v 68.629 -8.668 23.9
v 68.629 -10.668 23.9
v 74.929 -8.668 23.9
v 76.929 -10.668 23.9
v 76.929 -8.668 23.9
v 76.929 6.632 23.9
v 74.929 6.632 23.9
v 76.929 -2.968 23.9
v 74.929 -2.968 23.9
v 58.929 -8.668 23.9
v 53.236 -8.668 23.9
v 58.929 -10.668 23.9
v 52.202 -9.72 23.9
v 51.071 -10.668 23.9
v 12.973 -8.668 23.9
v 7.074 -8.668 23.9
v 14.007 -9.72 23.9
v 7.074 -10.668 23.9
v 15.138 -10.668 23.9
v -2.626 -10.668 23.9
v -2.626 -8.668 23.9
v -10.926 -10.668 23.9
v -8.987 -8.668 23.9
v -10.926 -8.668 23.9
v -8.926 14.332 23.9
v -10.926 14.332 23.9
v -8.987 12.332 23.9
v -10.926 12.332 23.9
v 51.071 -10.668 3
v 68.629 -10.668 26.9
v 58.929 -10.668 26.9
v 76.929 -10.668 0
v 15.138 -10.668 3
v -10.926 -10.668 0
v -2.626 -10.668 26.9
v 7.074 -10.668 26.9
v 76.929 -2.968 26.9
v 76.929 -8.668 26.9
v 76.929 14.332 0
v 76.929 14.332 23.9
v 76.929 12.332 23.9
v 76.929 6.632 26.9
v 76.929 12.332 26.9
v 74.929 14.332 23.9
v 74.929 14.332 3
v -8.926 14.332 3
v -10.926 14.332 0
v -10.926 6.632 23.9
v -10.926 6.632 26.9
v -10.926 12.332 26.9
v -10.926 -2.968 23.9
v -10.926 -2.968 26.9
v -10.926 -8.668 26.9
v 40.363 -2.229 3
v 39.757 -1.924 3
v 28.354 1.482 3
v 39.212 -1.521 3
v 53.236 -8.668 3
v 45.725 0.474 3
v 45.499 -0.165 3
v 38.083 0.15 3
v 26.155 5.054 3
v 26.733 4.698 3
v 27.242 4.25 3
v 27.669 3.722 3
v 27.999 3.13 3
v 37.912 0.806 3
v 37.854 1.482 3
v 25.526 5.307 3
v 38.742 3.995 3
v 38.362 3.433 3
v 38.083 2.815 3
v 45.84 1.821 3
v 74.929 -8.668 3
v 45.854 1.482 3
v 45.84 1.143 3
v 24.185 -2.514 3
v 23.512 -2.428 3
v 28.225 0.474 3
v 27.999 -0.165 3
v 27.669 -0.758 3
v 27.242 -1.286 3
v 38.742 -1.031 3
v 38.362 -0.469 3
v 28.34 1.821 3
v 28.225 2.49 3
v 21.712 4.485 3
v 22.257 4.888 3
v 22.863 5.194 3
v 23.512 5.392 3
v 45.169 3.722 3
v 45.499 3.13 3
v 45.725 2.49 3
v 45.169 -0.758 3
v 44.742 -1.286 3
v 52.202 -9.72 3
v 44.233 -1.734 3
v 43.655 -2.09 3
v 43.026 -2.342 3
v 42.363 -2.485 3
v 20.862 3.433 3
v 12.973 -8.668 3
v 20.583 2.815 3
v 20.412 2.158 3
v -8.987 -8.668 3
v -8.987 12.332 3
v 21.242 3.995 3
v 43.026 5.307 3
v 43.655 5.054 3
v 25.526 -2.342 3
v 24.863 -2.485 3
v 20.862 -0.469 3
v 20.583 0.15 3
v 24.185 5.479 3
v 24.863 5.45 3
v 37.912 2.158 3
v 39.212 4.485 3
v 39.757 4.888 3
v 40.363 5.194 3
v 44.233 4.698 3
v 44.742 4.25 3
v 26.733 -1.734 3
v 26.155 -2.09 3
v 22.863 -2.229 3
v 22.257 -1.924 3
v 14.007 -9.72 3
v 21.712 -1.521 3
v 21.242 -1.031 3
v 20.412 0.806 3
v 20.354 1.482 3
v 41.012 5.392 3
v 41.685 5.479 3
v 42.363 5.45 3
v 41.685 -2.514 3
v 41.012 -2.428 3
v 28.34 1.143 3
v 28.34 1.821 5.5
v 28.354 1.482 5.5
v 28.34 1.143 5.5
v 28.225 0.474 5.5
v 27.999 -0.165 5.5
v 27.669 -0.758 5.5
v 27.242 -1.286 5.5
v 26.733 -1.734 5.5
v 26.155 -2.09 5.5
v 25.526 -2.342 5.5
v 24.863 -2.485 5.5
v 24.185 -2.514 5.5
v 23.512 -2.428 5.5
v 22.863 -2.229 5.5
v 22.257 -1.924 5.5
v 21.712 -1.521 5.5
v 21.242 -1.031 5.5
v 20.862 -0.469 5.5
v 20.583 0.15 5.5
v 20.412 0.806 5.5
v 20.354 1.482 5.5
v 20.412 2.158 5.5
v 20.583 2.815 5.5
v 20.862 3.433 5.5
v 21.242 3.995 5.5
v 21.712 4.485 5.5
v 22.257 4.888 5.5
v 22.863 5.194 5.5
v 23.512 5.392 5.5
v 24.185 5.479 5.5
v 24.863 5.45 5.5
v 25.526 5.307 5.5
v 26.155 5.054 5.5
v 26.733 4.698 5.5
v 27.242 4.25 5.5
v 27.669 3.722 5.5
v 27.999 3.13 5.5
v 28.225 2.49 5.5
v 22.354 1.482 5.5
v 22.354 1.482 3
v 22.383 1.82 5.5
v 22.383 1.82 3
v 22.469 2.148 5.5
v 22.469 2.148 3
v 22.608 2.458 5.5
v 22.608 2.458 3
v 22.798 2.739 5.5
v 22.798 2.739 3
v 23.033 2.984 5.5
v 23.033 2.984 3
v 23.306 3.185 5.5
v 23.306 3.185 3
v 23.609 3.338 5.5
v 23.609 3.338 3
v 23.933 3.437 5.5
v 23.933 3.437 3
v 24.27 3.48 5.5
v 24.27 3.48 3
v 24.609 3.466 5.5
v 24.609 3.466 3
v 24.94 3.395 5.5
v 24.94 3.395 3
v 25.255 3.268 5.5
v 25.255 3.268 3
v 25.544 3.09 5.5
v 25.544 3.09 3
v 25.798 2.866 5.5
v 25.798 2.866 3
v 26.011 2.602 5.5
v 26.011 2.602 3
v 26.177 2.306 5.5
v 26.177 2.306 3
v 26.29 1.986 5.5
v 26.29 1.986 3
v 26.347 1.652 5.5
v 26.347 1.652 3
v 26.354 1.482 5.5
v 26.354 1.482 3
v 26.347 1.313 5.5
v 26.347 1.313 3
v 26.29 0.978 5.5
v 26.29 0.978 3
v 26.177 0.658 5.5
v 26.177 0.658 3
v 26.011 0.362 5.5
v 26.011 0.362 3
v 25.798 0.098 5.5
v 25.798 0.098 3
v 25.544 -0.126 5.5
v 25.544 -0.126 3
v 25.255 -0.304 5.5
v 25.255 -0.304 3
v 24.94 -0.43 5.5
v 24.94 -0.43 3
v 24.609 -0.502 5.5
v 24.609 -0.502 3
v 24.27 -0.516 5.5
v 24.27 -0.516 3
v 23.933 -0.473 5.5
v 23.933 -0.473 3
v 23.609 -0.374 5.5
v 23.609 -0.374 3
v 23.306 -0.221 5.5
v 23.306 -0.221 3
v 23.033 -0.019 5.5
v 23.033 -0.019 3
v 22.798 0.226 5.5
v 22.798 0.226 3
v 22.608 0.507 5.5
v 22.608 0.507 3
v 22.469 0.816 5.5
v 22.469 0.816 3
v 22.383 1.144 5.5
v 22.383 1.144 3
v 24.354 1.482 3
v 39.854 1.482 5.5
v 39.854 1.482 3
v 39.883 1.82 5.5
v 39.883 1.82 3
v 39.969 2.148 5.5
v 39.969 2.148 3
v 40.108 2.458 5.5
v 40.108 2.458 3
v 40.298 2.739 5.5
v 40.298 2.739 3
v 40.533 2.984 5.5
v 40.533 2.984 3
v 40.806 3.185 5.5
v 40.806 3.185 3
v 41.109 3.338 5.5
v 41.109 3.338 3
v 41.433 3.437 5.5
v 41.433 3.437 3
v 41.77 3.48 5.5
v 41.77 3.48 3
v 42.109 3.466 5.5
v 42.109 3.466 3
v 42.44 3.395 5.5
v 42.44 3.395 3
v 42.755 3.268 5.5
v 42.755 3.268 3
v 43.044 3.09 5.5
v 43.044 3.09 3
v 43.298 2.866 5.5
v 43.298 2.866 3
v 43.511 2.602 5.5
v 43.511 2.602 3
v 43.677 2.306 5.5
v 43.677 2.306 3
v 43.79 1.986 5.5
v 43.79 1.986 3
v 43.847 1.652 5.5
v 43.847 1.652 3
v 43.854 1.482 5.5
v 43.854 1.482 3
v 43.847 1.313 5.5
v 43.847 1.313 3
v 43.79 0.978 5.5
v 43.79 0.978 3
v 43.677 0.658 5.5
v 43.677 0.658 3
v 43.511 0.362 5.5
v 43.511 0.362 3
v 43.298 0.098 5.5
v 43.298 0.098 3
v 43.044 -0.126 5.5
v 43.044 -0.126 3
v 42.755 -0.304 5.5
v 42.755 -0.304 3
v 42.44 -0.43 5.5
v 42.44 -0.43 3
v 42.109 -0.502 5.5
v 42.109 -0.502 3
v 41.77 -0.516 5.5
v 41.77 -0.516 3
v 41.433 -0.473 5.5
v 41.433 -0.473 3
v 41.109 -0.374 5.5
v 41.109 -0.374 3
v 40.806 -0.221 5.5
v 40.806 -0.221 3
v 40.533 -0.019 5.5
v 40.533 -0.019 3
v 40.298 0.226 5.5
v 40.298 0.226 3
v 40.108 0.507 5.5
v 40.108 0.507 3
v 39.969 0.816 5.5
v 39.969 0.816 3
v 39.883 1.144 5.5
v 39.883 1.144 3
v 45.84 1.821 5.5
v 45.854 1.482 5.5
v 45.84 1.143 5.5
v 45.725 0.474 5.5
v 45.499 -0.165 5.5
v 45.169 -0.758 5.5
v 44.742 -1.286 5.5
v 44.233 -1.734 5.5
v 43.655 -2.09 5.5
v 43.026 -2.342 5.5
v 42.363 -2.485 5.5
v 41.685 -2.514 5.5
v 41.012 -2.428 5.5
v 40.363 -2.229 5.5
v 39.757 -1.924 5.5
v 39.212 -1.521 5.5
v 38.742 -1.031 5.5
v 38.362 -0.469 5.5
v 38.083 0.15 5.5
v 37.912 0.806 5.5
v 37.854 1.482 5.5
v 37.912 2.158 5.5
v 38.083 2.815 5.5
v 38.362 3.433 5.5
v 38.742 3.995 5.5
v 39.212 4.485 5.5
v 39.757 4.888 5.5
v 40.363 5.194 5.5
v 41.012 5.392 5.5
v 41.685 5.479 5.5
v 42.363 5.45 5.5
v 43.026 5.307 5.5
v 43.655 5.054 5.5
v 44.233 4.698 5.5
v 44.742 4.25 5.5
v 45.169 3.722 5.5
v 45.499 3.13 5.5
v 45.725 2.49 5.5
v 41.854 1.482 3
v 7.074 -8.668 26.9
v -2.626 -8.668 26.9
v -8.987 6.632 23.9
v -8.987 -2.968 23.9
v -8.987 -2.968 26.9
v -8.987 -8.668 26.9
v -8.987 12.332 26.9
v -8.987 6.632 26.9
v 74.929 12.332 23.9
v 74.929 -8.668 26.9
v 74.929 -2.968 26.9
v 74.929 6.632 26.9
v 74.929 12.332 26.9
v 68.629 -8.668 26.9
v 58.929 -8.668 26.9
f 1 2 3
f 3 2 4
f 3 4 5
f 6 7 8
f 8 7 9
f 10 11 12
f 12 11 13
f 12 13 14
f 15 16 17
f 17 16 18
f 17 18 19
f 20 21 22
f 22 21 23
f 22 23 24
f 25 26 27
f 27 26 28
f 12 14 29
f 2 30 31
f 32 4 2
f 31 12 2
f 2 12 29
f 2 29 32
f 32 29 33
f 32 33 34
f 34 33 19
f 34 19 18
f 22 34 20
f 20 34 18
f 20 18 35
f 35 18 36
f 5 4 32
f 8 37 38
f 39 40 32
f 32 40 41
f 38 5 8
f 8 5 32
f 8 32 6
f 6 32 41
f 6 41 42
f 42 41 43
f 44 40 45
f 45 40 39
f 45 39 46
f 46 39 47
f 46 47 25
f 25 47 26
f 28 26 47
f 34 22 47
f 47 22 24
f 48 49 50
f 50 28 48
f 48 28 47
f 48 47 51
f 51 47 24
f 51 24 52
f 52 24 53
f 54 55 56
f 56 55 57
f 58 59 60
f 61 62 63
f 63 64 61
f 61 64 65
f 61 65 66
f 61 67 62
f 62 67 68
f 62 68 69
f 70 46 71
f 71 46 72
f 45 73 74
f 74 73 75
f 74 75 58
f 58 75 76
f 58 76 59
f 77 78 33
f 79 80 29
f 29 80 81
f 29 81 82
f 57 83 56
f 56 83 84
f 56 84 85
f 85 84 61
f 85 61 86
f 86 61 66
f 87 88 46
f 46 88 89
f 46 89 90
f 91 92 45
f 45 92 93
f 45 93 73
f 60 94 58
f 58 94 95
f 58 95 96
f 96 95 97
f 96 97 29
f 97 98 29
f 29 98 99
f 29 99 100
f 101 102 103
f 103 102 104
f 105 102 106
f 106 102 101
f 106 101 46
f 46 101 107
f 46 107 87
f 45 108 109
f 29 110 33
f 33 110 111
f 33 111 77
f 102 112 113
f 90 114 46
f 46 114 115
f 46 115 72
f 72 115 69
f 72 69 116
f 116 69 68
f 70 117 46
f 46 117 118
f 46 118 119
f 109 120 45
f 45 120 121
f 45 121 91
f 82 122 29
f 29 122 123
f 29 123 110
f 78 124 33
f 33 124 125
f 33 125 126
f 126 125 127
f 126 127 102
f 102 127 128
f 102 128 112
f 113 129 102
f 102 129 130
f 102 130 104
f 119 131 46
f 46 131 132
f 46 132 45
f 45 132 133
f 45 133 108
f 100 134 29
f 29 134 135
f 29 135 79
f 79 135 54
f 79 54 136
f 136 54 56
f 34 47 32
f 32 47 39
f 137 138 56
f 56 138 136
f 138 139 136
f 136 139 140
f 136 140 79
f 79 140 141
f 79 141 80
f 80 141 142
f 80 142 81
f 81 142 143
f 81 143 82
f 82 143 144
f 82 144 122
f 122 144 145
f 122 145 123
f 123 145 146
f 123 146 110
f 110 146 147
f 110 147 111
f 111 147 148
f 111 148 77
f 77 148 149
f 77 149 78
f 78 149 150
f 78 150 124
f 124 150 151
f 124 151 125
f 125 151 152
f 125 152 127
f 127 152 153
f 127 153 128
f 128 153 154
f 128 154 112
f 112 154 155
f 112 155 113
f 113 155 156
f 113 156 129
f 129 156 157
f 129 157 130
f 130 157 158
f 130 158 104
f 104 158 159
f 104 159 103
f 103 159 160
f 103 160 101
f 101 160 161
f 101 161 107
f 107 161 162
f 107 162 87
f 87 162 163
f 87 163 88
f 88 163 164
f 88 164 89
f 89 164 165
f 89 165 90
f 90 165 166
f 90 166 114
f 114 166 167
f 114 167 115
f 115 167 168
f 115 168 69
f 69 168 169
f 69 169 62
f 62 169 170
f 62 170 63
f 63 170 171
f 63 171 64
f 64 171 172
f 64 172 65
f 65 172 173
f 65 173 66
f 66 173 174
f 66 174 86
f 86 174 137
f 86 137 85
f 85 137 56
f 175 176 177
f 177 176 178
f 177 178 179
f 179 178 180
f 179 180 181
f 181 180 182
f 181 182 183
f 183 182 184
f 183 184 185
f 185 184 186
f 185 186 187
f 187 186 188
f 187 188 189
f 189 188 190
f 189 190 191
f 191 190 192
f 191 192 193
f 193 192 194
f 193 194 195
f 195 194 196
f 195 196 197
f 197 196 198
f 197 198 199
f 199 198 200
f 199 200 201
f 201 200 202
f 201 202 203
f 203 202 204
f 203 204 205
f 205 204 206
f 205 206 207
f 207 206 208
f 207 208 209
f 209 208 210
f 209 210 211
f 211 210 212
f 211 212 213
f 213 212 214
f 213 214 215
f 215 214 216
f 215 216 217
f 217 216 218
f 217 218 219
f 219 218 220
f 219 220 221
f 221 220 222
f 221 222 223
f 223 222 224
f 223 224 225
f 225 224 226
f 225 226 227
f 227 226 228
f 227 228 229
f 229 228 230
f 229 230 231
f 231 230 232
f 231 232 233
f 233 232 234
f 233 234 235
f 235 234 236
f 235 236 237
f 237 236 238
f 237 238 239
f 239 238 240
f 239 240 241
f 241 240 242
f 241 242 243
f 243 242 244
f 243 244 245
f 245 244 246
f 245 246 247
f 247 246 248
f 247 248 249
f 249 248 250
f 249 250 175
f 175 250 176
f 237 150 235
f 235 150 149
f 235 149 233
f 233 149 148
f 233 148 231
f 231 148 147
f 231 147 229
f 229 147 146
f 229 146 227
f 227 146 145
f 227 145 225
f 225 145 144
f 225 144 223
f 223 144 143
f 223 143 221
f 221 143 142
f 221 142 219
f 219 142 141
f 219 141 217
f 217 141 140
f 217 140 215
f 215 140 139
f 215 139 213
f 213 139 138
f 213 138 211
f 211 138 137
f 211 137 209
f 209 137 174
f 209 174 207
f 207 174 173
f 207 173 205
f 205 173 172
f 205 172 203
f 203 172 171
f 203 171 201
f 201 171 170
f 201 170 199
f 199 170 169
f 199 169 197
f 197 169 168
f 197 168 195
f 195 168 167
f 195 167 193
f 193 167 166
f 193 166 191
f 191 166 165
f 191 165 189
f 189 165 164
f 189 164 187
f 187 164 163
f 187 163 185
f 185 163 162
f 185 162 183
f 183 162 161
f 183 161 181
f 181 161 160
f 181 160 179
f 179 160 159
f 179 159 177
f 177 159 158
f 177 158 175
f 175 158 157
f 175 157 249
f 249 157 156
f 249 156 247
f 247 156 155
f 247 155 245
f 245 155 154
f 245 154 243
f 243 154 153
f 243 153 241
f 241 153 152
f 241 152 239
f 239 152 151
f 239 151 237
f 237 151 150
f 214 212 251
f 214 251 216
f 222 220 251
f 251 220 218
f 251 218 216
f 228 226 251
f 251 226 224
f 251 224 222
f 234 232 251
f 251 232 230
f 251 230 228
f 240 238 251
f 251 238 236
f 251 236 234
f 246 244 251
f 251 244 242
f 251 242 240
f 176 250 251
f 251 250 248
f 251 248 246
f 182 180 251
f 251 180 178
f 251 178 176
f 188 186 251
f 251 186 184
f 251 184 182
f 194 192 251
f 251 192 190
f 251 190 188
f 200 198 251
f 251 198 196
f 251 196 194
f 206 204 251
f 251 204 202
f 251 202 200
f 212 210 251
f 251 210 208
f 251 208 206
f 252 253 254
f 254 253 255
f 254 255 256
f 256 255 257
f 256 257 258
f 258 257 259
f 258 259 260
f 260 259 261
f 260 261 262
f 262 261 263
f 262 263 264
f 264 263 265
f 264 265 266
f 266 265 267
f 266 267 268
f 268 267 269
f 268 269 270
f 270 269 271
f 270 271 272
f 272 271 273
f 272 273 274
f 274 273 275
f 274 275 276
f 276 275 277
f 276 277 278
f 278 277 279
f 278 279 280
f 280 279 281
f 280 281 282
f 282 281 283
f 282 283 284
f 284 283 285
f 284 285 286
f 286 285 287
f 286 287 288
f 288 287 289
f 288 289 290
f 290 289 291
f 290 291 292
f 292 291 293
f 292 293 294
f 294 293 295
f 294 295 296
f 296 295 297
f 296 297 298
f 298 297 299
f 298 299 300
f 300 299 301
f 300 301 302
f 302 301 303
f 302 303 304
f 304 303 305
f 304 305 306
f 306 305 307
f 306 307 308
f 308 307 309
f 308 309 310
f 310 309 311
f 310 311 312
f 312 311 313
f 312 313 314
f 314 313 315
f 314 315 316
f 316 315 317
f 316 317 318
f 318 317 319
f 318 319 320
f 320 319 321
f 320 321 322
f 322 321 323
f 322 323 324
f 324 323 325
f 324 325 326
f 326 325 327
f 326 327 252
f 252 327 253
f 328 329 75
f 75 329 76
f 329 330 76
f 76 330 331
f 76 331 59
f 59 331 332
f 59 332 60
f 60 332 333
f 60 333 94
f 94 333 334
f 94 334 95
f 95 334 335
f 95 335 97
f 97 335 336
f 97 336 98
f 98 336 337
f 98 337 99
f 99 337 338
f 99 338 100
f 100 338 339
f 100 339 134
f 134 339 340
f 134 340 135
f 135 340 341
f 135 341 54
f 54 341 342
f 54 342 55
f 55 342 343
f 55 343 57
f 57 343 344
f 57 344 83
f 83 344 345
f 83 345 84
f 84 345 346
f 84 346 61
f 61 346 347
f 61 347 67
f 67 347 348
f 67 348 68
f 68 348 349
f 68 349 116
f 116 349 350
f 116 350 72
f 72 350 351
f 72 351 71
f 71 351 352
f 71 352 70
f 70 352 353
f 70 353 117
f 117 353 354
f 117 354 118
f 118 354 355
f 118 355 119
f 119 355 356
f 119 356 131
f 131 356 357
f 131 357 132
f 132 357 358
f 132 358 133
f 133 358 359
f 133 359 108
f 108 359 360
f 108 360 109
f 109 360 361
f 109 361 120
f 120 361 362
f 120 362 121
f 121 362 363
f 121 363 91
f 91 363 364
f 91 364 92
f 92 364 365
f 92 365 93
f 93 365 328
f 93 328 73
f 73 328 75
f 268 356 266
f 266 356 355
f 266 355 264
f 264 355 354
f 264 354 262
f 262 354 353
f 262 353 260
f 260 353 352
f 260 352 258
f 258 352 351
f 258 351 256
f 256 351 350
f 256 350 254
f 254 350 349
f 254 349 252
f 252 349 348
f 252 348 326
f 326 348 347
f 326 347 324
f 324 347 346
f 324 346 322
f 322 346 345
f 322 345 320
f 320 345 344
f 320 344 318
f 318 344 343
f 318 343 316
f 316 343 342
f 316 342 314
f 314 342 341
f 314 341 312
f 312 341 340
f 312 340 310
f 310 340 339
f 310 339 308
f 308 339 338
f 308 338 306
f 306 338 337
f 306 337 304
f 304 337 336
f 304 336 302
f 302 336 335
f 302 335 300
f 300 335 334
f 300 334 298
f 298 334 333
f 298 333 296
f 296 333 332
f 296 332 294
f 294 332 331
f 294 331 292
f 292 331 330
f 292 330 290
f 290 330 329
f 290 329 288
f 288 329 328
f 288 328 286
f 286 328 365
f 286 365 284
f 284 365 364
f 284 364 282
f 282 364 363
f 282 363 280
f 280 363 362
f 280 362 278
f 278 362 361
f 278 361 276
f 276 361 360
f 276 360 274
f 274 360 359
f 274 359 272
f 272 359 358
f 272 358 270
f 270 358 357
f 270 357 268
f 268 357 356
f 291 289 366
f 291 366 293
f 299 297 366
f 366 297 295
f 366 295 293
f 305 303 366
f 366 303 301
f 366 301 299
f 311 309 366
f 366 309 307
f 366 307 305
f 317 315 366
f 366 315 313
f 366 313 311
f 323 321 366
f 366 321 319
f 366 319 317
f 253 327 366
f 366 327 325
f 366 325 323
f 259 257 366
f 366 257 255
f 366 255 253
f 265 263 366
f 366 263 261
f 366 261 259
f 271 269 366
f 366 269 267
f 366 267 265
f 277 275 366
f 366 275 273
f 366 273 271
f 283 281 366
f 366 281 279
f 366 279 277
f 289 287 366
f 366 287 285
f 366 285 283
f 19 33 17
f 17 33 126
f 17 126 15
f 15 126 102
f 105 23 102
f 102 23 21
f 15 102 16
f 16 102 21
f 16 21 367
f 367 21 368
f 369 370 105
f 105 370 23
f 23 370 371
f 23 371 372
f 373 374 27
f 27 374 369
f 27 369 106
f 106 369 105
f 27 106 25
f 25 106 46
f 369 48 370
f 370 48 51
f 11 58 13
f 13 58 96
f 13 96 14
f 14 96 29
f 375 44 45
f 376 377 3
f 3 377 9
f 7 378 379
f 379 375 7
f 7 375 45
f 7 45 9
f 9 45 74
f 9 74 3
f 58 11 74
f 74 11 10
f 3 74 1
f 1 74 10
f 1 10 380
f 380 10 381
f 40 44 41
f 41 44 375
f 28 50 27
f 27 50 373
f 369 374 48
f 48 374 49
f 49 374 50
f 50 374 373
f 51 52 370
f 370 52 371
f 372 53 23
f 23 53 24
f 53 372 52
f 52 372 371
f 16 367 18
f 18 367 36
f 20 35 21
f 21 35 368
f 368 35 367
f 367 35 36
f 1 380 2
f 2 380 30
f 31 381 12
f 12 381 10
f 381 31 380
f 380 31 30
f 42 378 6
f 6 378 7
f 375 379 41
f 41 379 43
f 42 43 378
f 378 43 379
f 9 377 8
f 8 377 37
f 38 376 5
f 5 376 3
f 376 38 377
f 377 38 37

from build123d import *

# Parameters (mm, degrees)
ESBO_O1_W                = 87.854335153
ESBO_O1_H                = 25
RESSALTO_EXTRUS_O1_DEPTH = 3
ESBO_O1_11_R             = 4
ESBO_O1_11_R_2           = 2
RESSALTO_EXTRUS_O2_DEPTH = 5.5
RESSALTO_EXTRUS_O3_DEPTH = 23.9
ESBO_O1_13_W             = 9.7
ESBO_O1_13_H             = 2
ESBO_O1_13_W_2           = 1.938437843
ESBO_O1_13_H_2           = 5.7
ESBO_O1_13_W_3           = 2
RESSALTO_EXTRUS_O4_DEPTH = 26.9


with BuildPart() as part:
    # Esboço1 → Ressalto-extrusão1 (new body)
    with BuildSketch(Plane.XY):
        with Locations((33.001638151, 1.832173033)):
            Rectangle(ESBO_O1_W, ESBO_O1_H)
    extrude(amount=RESSALTO_EXTRUS_O1_DEPTH)

    # Esboço1<11> → Ressalto-extrusão2 (add)
    # profile 1 of 2: a face of its own
    with BuildSketch(Plane.XY):
        with Locations((24.354470574, 1.482173033)):
            Circle(ESBO_O1_11_R)
        with Locations((24.354470574, 1.482173033)):
            Circle(ESBO_O1_11_R_2, mode=Mode.SUBTRACT)
    # profile 2 of 2: a face of its own
    with BuildSketch(Plane.XY):
        with Locations((41.854470574, 1.482173033)):
            Circle(ESBO_O1_11_R)
        with Locations((41.854470574, 1.482173033)):
            Circle(ESBO_O1_11_R_2, mode=Mode.SUBTRACT)
    extrude(amount=RESSALTO_EXTRUS_O2_DEPTH)

    # Esboço1<12> → Ressalto-extrusão3 (add)
    with BuildSketch(Plane.XY):
        with BuildLine():
            ThreePointArc((15.138180648, -10.667826967), (14.007108736, -9.720264336), (12.972906533, -8.667826967))
            Line((12.972906533, -8.667826967), (-8.987091583, -8.667826967))
            Line((-8.987091583, -8.667826967), (-8.987091583, 12.332173033))
            ThreePointArc((-8.987091583, 12.332173033), (-8.9716974, 13.332646658), (-8.925529426, 14.332173033))
            Line((-8.925529426, 14.332173033), (-10.925529426, 14.332173033))
            Line((-10.925529426, 14.332173033), (-10.925529426, -10.667826967))
            Line((-10.925529426, -10.667826967), (15.138180648, -10.667826967))
        make_face()
        with BuildLine():
            ThreePointArc((53.236034614, -8.667826967), (52.201832411, -9.720264336), (51.0707605, -10.667826967))
            Line((51.0707605, -10.667826967), (76.928805727, -10.667826967))
            Line((76.928805727, -10.667826967), (76.928805727, 14.332173033))
            Line((76.928805727, 14.332173033), (74.928805727, 14.332173033))
            Line((74.928805727, 14.332173033), (74.928805727, -8.667826967))
            Line((74.928805727, -8.667826967), (53.236034614, -8.667826967))
        make_face()
    extrude(amount=RESSALTO_EXTRUS_O3_DEPTH)

    # Esboço1<13> → Ressalto-extrusão4 (add)
    with BuildSketch(Plane.XY):
        with Locations((2.224470574, -9.667826967)):
            Rectangle(ESBO_O1_13_W, ESBO_O1_13_H)
        with Locations((-9.956310504, -5.817826967)):
            Rectangle(ESBO_O1_13_W_2, ESBO_O1_13_H_2)
        with Locations((63.778805727, -9.667826967)):
            Rectangle(ESBO_O1_13_W, ESBO_O1_13_H)
        with Locations((-9.956310504, 9.482173033)):
            Rectangle(ESBO_O1_13_W_2, ESBO_O1_13_H_2)
        with Locations((75.928805727, -5.817826967)):
            Rectangle(ESBO_O1_13_W_3, ESBO_O1_13_H_2)
        with Locations((75.928805727, 9.482173033)):
            Rectangle(ESBO_O1_13_W_3, ESBO_O1_13_H_2)
    extrude(amount=RESSALTO_EXTRUS_O4_DEPTH)


solid = part.part
